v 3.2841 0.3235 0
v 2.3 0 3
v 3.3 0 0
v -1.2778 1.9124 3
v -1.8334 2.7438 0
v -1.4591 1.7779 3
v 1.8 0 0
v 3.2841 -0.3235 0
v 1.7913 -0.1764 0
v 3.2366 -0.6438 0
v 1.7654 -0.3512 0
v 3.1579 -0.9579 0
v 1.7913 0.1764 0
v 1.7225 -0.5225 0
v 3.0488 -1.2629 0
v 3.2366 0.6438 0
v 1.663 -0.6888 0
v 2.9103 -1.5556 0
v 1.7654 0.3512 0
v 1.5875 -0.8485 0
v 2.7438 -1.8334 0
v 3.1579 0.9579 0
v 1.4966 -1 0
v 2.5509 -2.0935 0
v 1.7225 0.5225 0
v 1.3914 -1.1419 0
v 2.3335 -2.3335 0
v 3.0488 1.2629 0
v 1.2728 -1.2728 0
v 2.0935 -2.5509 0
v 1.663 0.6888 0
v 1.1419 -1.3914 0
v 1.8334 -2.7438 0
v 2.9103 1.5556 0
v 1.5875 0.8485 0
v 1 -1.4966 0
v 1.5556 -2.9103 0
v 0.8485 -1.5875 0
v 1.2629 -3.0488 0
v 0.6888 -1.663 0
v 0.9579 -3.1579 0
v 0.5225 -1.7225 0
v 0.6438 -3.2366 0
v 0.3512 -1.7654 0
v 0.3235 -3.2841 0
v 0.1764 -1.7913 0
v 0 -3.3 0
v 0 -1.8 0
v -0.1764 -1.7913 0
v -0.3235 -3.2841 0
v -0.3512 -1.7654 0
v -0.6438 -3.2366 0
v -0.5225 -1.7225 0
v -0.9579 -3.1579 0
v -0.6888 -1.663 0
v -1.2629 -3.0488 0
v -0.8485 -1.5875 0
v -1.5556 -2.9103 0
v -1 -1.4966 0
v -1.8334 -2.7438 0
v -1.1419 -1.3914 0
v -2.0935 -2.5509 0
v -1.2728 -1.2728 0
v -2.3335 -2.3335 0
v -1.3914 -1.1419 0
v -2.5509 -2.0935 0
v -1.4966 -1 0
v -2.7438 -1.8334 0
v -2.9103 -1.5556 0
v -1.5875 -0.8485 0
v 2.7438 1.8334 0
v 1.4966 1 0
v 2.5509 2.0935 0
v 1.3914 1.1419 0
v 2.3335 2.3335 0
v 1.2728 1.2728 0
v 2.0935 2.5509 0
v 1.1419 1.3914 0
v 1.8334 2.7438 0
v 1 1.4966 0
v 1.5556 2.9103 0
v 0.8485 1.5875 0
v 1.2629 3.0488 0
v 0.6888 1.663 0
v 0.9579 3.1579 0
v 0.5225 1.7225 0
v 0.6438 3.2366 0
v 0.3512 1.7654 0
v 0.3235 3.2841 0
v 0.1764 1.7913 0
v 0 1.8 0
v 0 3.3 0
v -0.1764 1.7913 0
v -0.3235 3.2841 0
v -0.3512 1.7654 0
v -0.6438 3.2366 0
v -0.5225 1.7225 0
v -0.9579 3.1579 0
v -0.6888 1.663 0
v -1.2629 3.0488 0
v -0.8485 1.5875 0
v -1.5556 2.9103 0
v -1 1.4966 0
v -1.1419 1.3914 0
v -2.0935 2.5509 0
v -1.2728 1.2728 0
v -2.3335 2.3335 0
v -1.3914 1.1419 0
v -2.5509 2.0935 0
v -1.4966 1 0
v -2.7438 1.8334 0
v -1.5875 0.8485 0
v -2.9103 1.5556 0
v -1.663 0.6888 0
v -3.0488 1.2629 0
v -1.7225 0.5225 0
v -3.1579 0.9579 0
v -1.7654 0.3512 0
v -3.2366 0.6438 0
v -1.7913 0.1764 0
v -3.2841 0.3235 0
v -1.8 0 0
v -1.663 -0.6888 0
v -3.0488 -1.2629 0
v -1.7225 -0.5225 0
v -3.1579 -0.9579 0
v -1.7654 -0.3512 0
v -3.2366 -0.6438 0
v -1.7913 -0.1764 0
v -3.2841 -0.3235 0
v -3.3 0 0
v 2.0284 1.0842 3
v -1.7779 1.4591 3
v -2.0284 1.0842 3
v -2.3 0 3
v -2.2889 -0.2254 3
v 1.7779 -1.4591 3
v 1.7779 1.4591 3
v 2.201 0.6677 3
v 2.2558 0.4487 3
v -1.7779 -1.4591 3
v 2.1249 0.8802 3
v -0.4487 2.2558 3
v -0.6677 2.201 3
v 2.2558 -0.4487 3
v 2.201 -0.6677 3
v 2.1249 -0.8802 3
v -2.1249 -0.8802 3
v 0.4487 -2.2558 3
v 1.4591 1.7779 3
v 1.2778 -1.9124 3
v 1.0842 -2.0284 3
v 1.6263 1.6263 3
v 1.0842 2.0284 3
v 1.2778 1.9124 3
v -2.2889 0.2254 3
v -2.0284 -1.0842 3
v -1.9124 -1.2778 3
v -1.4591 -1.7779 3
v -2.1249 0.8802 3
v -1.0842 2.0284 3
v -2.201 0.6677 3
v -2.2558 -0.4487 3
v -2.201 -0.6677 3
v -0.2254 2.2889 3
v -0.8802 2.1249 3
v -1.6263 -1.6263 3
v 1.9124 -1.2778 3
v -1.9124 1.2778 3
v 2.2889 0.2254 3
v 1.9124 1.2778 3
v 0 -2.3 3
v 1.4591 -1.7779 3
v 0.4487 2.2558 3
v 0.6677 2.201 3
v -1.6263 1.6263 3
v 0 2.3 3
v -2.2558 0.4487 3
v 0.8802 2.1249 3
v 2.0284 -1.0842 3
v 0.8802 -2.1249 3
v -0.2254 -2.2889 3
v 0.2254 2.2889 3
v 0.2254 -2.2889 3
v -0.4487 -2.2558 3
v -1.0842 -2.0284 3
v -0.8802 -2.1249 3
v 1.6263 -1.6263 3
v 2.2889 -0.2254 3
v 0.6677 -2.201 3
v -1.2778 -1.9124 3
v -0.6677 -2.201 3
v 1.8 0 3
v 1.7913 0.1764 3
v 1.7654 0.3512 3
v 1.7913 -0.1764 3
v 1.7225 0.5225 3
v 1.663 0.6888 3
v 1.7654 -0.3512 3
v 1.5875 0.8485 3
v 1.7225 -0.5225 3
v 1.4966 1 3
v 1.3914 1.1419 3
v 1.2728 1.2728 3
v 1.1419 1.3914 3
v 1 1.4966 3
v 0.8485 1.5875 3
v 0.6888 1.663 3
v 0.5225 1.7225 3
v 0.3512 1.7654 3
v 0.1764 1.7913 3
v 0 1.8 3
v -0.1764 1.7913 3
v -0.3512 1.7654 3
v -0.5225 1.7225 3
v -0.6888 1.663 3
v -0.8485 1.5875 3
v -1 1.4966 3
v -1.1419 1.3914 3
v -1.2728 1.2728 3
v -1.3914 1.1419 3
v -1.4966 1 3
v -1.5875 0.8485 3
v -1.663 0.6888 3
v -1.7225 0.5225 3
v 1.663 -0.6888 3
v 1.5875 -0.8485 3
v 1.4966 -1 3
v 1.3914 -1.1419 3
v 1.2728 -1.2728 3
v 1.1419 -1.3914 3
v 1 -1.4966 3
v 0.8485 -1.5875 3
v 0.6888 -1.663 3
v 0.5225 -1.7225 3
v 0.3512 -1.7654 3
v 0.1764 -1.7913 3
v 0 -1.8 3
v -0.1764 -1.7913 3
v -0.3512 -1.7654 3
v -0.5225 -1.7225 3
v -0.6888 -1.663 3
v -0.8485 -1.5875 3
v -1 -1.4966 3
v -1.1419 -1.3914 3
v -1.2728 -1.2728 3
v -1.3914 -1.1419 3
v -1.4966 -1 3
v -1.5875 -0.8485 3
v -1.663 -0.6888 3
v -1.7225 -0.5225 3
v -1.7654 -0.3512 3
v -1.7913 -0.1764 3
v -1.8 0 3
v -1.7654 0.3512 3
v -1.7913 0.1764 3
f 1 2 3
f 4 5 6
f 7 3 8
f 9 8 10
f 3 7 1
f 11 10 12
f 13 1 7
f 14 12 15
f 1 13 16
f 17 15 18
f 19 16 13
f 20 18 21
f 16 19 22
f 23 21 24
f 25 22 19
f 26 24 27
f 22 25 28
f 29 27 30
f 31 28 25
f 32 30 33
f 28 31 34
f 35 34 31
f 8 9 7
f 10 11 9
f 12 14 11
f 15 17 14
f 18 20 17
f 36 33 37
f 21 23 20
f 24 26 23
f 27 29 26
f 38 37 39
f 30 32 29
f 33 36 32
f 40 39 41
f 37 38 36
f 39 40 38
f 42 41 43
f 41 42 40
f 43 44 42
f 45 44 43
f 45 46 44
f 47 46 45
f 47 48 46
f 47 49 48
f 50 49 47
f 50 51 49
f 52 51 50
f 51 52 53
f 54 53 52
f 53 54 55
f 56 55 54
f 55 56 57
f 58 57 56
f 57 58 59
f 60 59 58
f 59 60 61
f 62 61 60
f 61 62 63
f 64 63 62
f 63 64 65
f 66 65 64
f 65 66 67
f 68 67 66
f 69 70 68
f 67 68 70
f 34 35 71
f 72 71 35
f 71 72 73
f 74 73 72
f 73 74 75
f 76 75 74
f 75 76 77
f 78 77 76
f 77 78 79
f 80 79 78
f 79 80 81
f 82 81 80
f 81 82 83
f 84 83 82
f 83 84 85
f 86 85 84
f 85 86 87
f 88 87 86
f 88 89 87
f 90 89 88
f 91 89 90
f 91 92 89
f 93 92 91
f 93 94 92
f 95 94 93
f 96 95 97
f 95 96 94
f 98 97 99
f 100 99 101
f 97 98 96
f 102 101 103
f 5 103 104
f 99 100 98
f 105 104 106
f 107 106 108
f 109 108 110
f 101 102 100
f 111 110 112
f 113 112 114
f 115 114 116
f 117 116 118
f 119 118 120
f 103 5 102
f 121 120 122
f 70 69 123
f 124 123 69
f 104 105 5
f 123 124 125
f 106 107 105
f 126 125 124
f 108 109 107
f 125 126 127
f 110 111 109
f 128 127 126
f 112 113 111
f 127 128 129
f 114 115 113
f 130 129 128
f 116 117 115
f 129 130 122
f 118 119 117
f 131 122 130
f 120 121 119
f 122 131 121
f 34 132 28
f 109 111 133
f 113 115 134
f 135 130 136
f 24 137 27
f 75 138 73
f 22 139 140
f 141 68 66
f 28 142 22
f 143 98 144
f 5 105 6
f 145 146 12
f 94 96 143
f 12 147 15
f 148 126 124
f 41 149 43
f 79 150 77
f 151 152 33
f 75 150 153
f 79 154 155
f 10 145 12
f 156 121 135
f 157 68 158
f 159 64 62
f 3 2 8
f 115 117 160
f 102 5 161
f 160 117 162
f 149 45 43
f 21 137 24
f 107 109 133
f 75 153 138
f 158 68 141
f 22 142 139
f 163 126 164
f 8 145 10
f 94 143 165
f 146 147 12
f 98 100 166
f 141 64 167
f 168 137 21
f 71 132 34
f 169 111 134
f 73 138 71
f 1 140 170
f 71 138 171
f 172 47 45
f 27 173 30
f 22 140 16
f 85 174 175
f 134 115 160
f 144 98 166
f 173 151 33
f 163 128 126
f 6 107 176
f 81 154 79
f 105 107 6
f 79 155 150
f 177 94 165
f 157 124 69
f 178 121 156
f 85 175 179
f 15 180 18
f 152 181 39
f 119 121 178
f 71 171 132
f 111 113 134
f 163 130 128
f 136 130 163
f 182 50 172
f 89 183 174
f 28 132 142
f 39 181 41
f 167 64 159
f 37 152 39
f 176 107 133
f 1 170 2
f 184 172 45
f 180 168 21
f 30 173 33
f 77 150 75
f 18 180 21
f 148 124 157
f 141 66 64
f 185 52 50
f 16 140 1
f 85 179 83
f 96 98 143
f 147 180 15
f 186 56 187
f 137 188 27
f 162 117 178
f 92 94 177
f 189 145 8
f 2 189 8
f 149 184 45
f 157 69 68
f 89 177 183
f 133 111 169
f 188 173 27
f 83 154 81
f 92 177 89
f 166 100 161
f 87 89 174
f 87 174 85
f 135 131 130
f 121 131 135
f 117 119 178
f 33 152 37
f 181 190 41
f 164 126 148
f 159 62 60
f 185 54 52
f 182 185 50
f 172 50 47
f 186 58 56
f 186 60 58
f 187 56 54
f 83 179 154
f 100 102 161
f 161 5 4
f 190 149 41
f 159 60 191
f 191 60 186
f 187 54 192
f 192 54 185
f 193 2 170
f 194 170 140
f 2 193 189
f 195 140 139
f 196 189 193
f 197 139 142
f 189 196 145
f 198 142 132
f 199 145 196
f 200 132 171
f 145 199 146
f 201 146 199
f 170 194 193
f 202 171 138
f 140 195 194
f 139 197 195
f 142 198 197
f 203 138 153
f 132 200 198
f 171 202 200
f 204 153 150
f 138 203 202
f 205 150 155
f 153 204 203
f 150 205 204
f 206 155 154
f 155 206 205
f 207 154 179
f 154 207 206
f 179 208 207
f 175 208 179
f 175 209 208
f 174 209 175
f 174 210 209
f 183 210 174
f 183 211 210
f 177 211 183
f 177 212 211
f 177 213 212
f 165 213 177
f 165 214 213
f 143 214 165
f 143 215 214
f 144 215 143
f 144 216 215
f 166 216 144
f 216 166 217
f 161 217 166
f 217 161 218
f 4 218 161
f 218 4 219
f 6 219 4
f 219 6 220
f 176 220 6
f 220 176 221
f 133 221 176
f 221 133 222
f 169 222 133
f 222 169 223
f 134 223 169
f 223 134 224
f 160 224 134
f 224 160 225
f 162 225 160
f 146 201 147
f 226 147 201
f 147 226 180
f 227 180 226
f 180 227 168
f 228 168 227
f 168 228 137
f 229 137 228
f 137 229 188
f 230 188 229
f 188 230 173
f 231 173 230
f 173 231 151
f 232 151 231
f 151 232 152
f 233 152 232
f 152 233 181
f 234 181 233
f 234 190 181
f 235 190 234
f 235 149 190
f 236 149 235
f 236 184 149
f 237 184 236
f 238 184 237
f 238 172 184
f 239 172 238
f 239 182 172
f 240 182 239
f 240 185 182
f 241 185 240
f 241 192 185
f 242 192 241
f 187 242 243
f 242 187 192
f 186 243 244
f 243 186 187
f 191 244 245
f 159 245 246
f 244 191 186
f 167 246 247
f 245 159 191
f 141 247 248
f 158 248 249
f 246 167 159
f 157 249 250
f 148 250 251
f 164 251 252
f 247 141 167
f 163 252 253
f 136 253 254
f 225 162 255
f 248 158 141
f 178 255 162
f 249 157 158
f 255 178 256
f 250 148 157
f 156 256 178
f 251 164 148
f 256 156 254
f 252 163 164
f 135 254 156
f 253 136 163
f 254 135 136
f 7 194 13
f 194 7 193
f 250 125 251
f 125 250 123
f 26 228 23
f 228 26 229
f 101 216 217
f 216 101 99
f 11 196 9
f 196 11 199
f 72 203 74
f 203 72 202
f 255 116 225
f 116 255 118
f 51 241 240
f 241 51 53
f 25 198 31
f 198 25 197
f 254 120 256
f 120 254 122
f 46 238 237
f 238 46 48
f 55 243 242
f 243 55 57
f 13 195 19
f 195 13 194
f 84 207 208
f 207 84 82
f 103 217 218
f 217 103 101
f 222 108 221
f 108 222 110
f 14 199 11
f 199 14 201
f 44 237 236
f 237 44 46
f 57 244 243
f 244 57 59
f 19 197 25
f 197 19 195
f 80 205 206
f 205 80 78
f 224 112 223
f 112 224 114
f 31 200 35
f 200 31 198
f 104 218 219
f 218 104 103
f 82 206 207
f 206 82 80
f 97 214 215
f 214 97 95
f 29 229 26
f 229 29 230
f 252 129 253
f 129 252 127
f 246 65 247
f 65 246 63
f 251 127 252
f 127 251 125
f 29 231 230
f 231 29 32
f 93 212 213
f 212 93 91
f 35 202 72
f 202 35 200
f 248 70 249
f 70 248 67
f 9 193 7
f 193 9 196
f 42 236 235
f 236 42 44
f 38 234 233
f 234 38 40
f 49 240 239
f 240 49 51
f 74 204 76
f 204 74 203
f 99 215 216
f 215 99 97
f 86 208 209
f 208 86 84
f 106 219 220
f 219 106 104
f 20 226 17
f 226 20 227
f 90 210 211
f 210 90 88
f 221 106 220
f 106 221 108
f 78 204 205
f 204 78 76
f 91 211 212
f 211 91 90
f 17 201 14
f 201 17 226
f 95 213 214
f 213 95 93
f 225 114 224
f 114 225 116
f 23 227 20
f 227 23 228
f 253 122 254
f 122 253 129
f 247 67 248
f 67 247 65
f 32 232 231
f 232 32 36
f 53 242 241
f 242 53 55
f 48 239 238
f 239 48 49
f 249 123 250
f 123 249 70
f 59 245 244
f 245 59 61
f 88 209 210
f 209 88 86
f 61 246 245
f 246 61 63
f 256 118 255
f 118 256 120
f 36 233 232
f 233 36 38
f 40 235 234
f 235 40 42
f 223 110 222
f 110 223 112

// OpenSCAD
$fa = $preview ? 1 : 0.01;
$fs = $preview ? 0.1 : 0.01;
$fn = $preview ? 32 : 64;

standoff_length = 8;

height = standoff_length - 5;
width = 3.3;

difference() {
    cylinder(height, width, 2.3);
    translate([0,0,-0.1])
    cylinder(6, 1.8, 1.8);
}
